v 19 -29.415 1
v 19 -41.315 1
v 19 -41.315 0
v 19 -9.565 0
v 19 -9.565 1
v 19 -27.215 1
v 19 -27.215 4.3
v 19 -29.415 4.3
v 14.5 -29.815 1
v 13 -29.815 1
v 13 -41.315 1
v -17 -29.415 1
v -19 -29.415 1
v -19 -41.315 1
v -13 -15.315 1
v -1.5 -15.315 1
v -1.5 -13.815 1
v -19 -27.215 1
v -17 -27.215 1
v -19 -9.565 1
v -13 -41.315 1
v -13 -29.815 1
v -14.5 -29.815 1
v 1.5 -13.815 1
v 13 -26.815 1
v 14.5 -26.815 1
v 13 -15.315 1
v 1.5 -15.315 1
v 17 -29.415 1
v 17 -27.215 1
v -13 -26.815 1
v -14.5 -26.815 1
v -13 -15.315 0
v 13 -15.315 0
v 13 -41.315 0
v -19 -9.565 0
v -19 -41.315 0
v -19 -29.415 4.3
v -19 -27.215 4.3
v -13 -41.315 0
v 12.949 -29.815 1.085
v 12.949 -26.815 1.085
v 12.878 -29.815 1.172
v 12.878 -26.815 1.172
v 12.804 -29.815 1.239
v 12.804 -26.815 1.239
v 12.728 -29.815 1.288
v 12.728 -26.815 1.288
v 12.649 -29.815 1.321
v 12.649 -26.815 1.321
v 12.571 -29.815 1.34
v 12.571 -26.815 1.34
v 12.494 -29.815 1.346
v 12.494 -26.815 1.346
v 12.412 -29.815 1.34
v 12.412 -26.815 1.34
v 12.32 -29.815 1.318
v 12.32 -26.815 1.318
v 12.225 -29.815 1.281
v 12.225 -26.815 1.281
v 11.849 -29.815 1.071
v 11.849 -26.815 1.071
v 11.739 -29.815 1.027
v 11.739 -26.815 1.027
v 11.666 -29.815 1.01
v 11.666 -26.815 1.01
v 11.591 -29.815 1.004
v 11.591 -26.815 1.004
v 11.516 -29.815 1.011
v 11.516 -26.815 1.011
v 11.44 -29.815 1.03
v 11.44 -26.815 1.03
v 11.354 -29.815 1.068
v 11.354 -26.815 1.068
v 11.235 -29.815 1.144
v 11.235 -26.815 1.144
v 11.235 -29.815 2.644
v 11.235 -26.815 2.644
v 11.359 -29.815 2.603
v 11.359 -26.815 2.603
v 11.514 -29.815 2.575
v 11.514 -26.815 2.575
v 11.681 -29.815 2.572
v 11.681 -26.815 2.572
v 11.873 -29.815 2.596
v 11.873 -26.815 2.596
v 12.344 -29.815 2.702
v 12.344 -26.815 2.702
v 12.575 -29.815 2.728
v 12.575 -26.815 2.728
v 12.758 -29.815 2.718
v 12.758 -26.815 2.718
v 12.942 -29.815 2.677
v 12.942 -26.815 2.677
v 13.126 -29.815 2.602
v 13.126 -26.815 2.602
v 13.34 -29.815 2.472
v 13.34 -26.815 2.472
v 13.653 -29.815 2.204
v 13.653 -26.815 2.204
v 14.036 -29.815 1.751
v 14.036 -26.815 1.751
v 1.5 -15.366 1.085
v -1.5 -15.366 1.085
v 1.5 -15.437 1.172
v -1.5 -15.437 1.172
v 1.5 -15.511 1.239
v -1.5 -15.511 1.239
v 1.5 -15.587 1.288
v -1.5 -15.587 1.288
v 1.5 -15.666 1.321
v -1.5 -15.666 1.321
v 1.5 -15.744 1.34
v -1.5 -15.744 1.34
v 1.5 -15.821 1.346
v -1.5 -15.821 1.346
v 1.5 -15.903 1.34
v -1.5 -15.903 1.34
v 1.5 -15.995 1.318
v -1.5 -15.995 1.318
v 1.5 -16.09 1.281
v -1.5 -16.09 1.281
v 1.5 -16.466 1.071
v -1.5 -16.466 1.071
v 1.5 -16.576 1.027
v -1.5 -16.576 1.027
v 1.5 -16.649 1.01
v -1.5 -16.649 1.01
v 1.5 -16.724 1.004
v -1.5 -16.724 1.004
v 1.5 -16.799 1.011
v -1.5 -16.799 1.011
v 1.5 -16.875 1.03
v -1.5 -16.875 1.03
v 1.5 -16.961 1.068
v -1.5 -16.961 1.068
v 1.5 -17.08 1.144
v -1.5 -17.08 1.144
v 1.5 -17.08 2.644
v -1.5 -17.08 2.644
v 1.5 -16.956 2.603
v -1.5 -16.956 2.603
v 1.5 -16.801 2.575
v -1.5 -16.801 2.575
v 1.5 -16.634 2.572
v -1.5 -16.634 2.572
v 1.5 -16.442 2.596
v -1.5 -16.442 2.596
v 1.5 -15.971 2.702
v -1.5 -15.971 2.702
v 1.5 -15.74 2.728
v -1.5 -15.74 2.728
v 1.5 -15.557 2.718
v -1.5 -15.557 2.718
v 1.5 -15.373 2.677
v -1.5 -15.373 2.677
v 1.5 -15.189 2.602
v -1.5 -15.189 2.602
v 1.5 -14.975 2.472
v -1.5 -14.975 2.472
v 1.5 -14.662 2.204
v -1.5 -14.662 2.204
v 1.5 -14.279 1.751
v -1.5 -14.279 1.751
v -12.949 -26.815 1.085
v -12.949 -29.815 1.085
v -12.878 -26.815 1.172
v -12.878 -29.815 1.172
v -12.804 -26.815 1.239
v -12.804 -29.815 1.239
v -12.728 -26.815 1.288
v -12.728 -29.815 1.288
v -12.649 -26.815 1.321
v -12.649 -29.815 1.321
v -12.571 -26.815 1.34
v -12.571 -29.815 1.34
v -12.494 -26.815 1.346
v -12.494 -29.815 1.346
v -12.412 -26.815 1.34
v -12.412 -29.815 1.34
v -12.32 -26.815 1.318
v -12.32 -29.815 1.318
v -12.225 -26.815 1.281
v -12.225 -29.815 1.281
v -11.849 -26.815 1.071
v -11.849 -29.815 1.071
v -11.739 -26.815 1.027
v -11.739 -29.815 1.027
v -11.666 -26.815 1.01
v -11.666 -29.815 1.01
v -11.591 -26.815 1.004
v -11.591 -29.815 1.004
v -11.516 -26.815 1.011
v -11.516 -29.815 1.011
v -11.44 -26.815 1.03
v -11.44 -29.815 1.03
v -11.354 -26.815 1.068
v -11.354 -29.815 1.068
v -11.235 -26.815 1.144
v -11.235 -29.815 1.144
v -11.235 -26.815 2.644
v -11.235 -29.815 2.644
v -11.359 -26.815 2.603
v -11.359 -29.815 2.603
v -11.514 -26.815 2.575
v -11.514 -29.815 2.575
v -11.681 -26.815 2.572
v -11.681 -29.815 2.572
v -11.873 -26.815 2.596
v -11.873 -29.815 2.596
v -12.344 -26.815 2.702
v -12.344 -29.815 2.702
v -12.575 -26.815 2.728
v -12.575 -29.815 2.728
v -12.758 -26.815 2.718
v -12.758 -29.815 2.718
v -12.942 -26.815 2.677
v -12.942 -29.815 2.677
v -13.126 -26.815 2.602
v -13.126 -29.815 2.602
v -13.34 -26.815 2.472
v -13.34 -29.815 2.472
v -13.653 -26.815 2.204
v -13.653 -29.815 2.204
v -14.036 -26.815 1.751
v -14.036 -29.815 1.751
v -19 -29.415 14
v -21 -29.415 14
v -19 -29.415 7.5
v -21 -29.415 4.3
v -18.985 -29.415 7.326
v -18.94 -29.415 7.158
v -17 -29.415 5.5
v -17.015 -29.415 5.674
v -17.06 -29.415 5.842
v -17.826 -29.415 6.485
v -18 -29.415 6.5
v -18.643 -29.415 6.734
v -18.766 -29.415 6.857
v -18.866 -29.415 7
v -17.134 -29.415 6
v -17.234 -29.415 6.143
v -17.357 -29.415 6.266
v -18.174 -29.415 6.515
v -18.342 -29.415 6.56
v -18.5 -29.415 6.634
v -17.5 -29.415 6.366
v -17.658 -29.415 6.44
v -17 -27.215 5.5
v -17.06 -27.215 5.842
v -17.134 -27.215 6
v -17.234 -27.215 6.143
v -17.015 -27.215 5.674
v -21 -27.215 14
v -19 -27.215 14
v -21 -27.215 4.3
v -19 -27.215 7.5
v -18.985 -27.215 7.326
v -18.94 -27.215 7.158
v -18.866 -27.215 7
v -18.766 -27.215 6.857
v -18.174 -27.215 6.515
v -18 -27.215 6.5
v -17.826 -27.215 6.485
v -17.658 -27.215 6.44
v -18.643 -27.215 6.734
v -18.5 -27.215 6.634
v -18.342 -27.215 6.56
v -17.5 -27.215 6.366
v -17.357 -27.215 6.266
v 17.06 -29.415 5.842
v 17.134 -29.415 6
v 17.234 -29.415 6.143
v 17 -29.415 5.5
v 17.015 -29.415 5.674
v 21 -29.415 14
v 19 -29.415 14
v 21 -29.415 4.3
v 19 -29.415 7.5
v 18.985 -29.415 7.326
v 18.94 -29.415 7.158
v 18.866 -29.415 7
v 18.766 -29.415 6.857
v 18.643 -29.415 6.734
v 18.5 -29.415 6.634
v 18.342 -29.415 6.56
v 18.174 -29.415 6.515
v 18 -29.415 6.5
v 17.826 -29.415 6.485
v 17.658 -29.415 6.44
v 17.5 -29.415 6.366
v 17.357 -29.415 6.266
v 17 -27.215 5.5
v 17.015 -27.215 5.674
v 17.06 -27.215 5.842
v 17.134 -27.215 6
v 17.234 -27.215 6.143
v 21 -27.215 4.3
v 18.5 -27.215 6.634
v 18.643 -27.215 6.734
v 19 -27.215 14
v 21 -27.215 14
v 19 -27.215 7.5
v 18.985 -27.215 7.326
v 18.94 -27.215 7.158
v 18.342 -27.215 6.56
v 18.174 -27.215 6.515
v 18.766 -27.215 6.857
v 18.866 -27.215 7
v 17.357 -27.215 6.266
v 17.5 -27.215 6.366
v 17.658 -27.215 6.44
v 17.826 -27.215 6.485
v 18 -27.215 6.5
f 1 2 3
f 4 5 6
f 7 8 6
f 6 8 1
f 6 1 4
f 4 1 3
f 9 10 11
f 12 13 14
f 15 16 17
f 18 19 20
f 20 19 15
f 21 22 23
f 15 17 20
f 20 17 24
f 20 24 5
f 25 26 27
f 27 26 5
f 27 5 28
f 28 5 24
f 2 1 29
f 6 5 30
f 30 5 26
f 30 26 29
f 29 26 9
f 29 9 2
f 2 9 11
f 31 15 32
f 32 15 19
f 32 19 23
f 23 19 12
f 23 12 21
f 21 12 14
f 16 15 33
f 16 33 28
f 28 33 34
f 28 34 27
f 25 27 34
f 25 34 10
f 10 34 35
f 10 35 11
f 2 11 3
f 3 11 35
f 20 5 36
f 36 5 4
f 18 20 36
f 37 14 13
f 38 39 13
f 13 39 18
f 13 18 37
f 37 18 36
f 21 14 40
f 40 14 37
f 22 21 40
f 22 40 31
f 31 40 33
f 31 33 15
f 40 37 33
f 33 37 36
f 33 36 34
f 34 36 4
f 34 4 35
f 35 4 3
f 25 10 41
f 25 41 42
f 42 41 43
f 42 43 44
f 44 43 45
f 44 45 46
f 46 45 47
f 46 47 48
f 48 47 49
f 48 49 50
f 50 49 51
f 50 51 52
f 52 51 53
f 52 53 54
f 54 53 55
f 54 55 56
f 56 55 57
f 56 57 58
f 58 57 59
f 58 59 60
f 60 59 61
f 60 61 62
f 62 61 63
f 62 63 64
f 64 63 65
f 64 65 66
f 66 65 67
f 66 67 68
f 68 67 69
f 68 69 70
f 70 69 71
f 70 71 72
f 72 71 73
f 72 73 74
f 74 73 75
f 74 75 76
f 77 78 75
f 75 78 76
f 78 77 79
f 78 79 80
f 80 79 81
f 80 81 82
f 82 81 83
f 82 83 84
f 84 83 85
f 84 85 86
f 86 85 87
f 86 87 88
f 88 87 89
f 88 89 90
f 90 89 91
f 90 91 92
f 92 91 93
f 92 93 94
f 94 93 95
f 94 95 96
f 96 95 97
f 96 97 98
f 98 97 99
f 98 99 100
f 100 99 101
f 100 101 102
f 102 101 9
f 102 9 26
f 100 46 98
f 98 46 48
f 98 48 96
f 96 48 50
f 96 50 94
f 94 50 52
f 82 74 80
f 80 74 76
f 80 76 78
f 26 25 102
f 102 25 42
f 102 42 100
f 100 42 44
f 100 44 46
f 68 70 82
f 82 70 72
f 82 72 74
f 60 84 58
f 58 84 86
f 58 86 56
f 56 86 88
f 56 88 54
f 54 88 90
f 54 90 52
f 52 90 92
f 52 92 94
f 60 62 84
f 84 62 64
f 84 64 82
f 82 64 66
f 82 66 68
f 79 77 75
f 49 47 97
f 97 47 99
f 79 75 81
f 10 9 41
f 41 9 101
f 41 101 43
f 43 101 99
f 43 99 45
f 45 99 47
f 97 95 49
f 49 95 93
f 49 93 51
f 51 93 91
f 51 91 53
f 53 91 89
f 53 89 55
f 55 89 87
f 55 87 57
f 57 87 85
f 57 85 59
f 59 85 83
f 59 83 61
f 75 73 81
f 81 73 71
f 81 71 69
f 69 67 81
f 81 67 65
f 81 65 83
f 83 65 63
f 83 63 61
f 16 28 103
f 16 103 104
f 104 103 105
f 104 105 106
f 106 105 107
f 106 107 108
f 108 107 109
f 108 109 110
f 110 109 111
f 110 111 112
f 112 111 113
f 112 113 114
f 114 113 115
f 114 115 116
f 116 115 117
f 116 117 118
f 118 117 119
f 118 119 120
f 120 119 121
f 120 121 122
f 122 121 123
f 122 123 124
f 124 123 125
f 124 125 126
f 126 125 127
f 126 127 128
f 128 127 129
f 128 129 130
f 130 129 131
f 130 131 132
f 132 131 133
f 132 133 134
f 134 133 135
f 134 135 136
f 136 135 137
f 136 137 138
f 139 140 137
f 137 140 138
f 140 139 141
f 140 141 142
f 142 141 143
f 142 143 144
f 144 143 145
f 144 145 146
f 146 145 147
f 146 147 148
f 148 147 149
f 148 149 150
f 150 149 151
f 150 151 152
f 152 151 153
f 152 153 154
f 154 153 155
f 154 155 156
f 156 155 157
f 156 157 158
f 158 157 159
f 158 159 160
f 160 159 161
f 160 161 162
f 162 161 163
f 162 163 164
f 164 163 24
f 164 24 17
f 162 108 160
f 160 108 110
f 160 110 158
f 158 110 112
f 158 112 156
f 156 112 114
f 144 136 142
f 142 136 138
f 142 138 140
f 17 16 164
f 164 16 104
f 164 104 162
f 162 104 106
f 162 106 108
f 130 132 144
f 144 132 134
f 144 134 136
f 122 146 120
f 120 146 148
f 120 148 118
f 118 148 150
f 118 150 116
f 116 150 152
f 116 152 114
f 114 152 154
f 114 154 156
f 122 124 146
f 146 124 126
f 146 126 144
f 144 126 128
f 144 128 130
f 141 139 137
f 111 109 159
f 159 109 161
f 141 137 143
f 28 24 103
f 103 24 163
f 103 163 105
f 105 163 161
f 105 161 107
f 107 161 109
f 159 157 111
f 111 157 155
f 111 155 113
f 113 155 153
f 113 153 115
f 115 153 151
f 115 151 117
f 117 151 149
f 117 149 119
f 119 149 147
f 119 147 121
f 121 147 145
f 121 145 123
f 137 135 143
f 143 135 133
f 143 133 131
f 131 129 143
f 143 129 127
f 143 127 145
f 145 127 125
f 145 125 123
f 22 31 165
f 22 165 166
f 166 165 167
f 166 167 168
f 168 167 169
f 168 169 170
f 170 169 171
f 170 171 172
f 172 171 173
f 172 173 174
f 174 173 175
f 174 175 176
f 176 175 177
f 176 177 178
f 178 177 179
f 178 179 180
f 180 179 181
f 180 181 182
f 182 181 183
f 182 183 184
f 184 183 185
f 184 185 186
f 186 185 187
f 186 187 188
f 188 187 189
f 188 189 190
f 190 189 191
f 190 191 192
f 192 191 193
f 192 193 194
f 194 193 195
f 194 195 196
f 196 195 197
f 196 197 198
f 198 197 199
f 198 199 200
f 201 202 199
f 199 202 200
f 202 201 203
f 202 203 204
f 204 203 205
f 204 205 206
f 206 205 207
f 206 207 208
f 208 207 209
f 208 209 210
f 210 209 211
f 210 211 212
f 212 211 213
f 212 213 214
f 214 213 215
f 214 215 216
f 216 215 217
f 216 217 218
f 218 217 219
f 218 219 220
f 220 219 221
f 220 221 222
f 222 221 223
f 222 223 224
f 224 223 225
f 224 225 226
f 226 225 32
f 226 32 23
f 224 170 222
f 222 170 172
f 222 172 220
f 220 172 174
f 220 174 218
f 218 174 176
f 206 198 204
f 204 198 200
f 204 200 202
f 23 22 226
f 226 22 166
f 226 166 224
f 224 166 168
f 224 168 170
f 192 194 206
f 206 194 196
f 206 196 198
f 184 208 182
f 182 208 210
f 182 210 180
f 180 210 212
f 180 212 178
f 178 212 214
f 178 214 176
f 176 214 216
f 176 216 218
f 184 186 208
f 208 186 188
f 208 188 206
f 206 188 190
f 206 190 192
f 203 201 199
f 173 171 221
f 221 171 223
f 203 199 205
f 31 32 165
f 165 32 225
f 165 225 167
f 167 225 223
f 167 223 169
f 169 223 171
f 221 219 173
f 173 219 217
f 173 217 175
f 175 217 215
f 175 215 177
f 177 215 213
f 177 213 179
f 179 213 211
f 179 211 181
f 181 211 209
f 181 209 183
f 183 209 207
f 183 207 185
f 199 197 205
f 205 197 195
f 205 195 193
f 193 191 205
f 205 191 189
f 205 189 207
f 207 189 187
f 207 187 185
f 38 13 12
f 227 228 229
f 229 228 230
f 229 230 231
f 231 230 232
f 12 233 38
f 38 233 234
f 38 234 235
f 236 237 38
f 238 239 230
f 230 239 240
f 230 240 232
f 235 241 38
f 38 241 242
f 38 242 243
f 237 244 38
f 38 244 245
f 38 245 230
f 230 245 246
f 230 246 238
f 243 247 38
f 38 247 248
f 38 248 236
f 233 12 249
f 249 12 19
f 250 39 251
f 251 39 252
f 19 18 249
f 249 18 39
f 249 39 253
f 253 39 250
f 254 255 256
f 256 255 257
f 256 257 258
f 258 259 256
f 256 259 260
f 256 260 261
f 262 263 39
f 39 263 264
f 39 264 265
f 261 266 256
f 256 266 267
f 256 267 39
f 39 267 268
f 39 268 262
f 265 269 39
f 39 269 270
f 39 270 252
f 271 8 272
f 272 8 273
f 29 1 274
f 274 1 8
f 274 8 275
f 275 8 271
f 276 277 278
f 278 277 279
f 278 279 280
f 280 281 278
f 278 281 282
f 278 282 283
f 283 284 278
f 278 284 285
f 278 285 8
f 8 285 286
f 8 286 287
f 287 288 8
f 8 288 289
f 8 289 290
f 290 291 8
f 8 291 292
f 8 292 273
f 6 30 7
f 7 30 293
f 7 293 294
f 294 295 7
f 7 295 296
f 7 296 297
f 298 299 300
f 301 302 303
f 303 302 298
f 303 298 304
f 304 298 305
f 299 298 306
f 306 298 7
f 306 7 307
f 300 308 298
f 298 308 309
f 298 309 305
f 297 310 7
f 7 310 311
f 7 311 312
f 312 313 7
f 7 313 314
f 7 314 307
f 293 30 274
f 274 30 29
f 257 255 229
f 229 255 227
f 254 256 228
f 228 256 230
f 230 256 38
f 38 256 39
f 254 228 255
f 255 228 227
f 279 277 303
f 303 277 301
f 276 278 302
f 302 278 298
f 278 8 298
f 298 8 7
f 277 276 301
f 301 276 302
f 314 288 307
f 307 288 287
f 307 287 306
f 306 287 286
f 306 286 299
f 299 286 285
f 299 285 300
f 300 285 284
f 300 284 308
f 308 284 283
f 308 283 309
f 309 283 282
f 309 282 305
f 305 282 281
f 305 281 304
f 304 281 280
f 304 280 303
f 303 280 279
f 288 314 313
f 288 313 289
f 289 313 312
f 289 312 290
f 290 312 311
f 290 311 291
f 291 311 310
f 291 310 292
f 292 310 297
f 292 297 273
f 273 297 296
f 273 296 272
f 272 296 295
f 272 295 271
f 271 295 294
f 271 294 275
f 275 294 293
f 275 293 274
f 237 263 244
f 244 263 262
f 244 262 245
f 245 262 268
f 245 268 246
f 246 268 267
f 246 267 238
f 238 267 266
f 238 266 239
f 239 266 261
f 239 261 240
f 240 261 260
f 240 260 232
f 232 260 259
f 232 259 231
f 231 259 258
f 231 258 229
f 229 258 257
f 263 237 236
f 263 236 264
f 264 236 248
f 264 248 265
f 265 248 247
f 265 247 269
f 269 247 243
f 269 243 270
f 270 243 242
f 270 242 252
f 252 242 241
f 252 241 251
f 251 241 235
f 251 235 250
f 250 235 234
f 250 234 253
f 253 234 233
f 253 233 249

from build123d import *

# Parameters (mm, degrees)
BOSS_EXTRUDE1_DEPTH      = 1
BOSS_EXTRUDE2_START      = -1.5
BOSS_EXTRUDE2_DEPTH      = 3
CIRPATTERN1_COUNT        = 3
CIRPATTERN1_ANGLE        = 180
SKETCH4_W                = 2
SKETCH4_H                = 2.2
BOSS_EXTRUDE3_DEPTH      = 5.5
BOSS_EXTRUDE4_DEPTH      = 7.5
BOSS_EXTRUDE4_DEPTH_BACK = 2.2
SKETCH5_W                = 2
SKETCH5_H                = 2.2
FILLET1_START            = -30
FILLET1_DEPTH            = 4
FILLET1_START_2          = -29.415
FILLET1_2_DEPTH          = 2.2


with BuildPart() as part:
    # Sketch1 → Boss-Extrude1 (new body)
    with BuildSketch(Plane.XY):
        Polygon((13, -9.565), (-13, -9.565), (-19, -9.565), (-19, -41.315), (-13, -41.315), (-13, -15.315), (13, -15.315), (13, -41.315), (19, -41.315), (19, -9.565), align=None)
    extrude(amount=BOSS_EXTRUDE1_DEPTH)

    # Boss-Extrude2: read off the stored shape, not the designer's step
    # Boss-Extrude2 outline → Boss-Extrude2 (add)
    with BuildSketch(Plane(origin=(0, -28.315, 0), x_dir=(-1, 0, 0), z_dir=(0, -1, 0)).offset(BOSS_EXTRUDE2_START)):
        with BuildLine():
            Line((-11.23522271, -2.644286359), (-11.23522271, -1.144286359))
            add(Edge.make_bspline(
                [(-11.23522271, -1.144286359), (-11.740174878, -0.757764956), (-12.028679887, -1.161534837), (-12.227869222, -1.503002268), (-12.747184273, -1.488774458), (-13, -1)],
                knots=[0, 0, 0, 0, 0, 0, 1, 1, 1, 1, 1, 1], degree=5))
            Line((-13, -1), (-14.5, -1))
            add(Edge.make_bspline(
                [(-14.5, -1), (-13.760887065, -2.414906572), (-12.67824158, -3.40768712), (-12.345095428, -2.525951835), (-11.7215069, -2.450856602), (-11.23522271, -2.644286359)],
                knots=[0, 0, 0, 0, 0, 0, 1, 1, 1, 1, 1, 1], degree=5))
        make_face()
    boss_extrude2 = extrude(amount=BOSS_EXTRUDE2_DEPTH)

    # CirPattern1: Boss-Extrude2 ×3 about axis
    cirpattern1_axis = Axis((0, -28.315, 1.05), (0, 0, 1))
    for i in range(1, CIRPATTERN1_COUNT):
        add(boss_extrude2.rotate(cirpattern1_axis, i * CIRPATTERN1_ANGLE / (CIRPATTERN1_COUNT - 1)))

    # Sketch4 → Boss-Extrude3 (add)
    with BuildSketch(Plane.XY.offset(1)):
        with Locations((-18, -28.315)):
            Rectangle(SKETCH4_W, SKETCH4_H)
        with Locations((18, -28.315)):
            Rectangle(SKETCH4_W, SKETCH4_H)
    extrude(amount=BOSS_EXTRUDE3_DEPTH)

    # Sketch5 → Boss-Extrude4 (add, two sides: drawn at the far end of the back side and taken through both)
    with BuildSketch(Plane.XY.offset(6.5).offset(-BOSS_EXTRUDE4_DEPTH_BACK)):
        with Locations((-20, -28.315)):
            Rectangle(SKETCH5_W, SKETCH5_H)
        with Locations((20, -28.315)):
            Rectangle(SKETCH5_W, SKETCH5_H)
    extrude(amount=BOSS_EXTRUDE4_DEPTH + BOSS_EXTRUDE4_DEPTH_BACK)

    # Fillet1: read off the stored shape, not the designer's step
    # Fillet1 outline → Fillet1 (cut)
    with BuildSketch(Plane(origin=(0, 0, 0), x_dir=(1, 0, 0), z_dir=(0, 1, 0)).offset(FILLET1_START)):
        with BuildLine():
            Line((17, -6.5), (18, -6.5))
            ThreePointArc((18, -6.5), (17.292893219, -6.207106781), (17, -5.5))
            Line((17, -5.5), (17, -6.5))
        make_face()
        with BuildLine():
            ThreePointArc((-17, -5.5), (-17.292893219, -6.207106781), (-18, -6.5))
            Line((-18, -6.5), (-17, -6.5))
            Line((-17, -6.5), (-17, -5.5))
        make_face()
    extrude(amount=FILLET1_DEPTH, mode=Mode.SUBTRACT)

    # Fillet1 2 outline → Fillet1 2 (add)
    with BuildSketch(Plane(origin=(0, 0, 0), x_dir=(1, 0, 0), z_dir=(0, 1, 0)).offset(FILLET1_START_2)):
        with BuildLine():
            Line((19, -6.5), (18, -6.5))
            ThreePointArc((18, -6.5), (18.707106781, -6.792893219), (19, -7.5))
            Line((19, -7.5), (19, -6.5))
        make_face()
        with BuildLine():
            ThreePointArc((-19, -7.5), (-18.707106781, -6.792893219), (-18, -6.5))
            Line((-18, -6.5), (-19, -6.5))
            Line((-19, -6.5), (-19, -7.5))
        make_face()
    extrude(amount=FILLET1_2_DEPTH)


solid = part.part
